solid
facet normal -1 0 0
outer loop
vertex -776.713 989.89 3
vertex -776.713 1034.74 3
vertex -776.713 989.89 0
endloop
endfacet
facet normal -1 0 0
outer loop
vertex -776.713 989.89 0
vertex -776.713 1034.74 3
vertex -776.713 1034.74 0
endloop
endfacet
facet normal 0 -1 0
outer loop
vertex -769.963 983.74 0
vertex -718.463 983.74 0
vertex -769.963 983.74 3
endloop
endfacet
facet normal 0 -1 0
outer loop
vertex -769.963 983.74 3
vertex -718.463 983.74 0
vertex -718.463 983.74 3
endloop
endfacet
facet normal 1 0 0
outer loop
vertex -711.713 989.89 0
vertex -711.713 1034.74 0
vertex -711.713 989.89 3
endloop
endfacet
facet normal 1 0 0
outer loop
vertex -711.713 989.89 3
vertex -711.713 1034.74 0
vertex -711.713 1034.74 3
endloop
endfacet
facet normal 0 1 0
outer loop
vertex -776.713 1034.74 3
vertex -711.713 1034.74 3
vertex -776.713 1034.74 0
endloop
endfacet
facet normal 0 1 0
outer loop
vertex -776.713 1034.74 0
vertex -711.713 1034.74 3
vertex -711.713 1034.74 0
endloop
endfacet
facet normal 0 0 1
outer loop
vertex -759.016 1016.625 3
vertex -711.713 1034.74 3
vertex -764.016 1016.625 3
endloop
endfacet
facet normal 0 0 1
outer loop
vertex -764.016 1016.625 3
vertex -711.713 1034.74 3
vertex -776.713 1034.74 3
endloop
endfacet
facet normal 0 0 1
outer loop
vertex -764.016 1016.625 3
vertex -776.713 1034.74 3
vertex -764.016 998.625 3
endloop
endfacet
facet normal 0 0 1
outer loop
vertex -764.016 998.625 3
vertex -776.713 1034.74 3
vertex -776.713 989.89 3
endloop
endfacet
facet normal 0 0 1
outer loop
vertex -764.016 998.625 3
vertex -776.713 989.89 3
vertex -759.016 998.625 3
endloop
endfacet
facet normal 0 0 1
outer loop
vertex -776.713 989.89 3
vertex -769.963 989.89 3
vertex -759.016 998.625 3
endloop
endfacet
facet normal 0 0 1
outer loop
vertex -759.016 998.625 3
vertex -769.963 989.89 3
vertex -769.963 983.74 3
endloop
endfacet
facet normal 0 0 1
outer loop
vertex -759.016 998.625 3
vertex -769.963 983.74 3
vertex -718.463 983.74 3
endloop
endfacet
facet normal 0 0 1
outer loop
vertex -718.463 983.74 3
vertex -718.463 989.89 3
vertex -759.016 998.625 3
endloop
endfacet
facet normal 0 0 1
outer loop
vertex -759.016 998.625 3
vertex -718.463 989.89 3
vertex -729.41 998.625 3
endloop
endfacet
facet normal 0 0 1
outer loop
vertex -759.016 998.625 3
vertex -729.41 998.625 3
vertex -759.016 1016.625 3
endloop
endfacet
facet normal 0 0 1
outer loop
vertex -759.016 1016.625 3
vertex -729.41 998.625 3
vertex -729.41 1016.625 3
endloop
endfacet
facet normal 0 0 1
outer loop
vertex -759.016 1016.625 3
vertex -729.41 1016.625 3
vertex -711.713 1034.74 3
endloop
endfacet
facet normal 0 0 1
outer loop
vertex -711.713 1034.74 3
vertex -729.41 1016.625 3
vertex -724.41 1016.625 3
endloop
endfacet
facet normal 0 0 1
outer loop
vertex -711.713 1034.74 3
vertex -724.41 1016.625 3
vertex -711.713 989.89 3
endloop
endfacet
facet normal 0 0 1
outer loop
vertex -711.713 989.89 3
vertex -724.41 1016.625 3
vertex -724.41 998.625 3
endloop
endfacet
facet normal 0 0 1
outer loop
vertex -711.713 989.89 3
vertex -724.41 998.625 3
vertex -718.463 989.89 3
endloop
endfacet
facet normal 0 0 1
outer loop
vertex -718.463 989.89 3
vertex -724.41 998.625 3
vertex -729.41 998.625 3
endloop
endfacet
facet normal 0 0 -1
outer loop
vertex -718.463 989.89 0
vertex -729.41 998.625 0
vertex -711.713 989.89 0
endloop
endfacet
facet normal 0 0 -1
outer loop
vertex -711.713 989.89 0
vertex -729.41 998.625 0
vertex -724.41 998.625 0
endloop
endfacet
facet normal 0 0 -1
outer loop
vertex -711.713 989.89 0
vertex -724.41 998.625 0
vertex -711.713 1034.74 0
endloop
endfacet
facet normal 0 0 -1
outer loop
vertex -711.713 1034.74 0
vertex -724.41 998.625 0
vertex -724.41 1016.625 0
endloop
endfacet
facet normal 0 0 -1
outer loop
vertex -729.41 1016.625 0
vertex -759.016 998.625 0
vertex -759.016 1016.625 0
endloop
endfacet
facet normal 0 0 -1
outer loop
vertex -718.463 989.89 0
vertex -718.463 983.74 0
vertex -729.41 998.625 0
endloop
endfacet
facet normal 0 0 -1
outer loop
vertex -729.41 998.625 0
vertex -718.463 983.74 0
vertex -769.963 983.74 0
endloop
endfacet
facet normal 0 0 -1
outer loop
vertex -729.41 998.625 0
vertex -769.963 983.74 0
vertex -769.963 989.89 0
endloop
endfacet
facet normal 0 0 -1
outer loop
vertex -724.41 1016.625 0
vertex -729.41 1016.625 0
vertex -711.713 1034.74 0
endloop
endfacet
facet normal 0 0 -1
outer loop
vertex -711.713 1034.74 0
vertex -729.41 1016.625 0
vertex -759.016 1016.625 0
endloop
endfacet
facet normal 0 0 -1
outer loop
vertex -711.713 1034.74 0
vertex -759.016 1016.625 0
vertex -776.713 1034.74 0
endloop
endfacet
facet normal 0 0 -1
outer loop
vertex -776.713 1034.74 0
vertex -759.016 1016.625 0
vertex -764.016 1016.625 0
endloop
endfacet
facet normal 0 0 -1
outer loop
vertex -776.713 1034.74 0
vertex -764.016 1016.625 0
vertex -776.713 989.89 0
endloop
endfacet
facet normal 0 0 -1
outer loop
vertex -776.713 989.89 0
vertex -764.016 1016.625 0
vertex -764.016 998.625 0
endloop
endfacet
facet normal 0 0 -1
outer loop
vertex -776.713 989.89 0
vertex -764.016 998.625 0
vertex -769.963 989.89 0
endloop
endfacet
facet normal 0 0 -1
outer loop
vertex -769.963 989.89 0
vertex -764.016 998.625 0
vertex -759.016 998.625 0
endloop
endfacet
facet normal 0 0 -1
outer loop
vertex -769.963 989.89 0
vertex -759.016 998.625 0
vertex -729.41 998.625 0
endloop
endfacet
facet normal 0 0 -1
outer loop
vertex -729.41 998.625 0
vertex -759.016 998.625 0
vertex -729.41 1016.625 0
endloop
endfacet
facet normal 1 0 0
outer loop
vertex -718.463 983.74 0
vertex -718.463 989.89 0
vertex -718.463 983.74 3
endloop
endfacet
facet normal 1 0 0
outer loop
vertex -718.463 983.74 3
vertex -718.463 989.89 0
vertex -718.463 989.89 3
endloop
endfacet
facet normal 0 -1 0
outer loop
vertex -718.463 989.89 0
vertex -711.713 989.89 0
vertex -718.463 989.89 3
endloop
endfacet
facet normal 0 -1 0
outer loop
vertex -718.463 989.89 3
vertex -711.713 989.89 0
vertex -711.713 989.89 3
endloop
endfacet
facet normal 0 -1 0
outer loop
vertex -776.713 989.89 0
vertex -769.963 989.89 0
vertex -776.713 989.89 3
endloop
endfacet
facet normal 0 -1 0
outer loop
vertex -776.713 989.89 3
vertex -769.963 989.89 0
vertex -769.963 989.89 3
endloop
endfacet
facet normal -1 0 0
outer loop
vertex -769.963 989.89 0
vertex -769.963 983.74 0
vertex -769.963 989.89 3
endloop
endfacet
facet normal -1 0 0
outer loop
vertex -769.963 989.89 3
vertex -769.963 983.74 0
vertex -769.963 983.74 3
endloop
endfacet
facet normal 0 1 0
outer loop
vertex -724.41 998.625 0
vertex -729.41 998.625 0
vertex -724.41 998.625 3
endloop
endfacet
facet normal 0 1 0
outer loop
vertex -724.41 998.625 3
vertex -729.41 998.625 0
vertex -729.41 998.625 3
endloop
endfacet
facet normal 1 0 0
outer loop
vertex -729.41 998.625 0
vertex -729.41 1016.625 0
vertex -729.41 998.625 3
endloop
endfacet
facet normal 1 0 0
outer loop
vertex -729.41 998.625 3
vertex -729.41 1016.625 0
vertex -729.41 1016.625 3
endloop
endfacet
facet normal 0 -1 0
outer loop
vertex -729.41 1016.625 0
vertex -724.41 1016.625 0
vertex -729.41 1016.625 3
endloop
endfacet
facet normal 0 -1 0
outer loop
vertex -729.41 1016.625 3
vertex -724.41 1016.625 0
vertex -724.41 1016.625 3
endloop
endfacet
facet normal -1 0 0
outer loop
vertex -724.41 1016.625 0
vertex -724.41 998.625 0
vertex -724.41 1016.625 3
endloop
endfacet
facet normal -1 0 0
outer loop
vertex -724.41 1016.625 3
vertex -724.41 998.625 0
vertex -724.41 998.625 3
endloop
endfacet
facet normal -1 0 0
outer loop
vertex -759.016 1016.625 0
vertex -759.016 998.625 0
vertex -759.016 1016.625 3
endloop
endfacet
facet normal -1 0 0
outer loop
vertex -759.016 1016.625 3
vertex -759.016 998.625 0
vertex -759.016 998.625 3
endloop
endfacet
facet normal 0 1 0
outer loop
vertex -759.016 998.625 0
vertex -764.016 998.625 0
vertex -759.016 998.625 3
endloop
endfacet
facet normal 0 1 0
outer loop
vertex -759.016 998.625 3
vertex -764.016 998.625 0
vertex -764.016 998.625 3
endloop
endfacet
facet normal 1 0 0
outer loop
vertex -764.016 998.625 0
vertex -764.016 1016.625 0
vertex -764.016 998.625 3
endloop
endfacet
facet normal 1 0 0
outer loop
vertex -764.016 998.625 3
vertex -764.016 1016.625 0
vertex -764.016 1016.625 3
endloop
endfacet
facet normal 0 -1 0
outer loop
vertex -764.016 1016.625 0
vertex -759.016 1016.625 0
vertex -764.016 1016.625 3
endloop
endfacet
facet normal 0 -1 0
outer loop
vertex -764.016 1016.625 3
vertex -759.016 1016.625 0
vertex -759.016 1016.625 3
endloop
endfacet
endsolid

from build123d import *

# Parameters (mm, degrees)
SKETCH1_W           = 65
SKETCH1_H           = 51
BOSS_EXTRUDE1_DEPTH = 3
SKETCH3_W           = 6.75
SKETCH3_H           = 6.15
CUT_EXTRUDE1_DEPTH  = 4
SKETCH4_W           = 2.5
SKETCH4_H           = 9
CUT_EXTRUDE2_DEPTH  = 4


with BuildPart() as part:
    # Sketch1 → Boss-Extrude1 (new body)
    with BuildSketch(Plane.XY):
        with Locations((-744.213414634, 1009.240243902)):
            Rectangle(SKETCH1_W, SKETCH1_H)
    extrude(amount=BOSS_EXTRUDE1_DEPTH)

    # Sketch3 → Cut-Extrude1 (cut, through all)
    with BuildSketch(Plane.XY.offset(3)):
        with Locations((-773.338414634, 986.815243902)):
            Rectangle(SKETCH3_W, SKETCH3_H)
        with Locations((-715.088414634, 986.815243902)):
            Rectangle(SKETCH3_W, SKETCH3_H)
    extrude(amount=-CUT_EXTRUDE1_DEPTH, mode=Mode.SUBTRACT)

    # Sketch4 → Cut-Extrude2 (cut, through all)
    with BuildSketch(Plane.XY.offset(3)):
        Polygon((-761.516384975, 1007.624918562), (-761.516384975, 1016.624918562), (-764.016384975, 1016.624918562), (-764.016384975, 998.624918562), (-759.016384975, 998.624918562), (-759.016384975, 1007.624918562), align=None)
        with Locations((-760.266384975, 1012.124918562)):
            Rectangle(SKETCH4_W, SKETCH4_H)
        Polygon((-724.410444293, 1016.624918562), (-726.910444293, 1016.624918562), (-726.910444293, 1007.624918562), (-729.410444293, 1007.624918562), (-729.410444293, 998.624918562), (-724.410444293, 998.624918562), align=None)
        with Locations((-728.160444293, 1012.124918562)):
            Rectangle(SKETCH4_W, SKETCH4_H)
    extrude(amount=-CUT_EXTRUDE2_DEPTH, mode=Mode.SUBTRACT)


solid = part.part
